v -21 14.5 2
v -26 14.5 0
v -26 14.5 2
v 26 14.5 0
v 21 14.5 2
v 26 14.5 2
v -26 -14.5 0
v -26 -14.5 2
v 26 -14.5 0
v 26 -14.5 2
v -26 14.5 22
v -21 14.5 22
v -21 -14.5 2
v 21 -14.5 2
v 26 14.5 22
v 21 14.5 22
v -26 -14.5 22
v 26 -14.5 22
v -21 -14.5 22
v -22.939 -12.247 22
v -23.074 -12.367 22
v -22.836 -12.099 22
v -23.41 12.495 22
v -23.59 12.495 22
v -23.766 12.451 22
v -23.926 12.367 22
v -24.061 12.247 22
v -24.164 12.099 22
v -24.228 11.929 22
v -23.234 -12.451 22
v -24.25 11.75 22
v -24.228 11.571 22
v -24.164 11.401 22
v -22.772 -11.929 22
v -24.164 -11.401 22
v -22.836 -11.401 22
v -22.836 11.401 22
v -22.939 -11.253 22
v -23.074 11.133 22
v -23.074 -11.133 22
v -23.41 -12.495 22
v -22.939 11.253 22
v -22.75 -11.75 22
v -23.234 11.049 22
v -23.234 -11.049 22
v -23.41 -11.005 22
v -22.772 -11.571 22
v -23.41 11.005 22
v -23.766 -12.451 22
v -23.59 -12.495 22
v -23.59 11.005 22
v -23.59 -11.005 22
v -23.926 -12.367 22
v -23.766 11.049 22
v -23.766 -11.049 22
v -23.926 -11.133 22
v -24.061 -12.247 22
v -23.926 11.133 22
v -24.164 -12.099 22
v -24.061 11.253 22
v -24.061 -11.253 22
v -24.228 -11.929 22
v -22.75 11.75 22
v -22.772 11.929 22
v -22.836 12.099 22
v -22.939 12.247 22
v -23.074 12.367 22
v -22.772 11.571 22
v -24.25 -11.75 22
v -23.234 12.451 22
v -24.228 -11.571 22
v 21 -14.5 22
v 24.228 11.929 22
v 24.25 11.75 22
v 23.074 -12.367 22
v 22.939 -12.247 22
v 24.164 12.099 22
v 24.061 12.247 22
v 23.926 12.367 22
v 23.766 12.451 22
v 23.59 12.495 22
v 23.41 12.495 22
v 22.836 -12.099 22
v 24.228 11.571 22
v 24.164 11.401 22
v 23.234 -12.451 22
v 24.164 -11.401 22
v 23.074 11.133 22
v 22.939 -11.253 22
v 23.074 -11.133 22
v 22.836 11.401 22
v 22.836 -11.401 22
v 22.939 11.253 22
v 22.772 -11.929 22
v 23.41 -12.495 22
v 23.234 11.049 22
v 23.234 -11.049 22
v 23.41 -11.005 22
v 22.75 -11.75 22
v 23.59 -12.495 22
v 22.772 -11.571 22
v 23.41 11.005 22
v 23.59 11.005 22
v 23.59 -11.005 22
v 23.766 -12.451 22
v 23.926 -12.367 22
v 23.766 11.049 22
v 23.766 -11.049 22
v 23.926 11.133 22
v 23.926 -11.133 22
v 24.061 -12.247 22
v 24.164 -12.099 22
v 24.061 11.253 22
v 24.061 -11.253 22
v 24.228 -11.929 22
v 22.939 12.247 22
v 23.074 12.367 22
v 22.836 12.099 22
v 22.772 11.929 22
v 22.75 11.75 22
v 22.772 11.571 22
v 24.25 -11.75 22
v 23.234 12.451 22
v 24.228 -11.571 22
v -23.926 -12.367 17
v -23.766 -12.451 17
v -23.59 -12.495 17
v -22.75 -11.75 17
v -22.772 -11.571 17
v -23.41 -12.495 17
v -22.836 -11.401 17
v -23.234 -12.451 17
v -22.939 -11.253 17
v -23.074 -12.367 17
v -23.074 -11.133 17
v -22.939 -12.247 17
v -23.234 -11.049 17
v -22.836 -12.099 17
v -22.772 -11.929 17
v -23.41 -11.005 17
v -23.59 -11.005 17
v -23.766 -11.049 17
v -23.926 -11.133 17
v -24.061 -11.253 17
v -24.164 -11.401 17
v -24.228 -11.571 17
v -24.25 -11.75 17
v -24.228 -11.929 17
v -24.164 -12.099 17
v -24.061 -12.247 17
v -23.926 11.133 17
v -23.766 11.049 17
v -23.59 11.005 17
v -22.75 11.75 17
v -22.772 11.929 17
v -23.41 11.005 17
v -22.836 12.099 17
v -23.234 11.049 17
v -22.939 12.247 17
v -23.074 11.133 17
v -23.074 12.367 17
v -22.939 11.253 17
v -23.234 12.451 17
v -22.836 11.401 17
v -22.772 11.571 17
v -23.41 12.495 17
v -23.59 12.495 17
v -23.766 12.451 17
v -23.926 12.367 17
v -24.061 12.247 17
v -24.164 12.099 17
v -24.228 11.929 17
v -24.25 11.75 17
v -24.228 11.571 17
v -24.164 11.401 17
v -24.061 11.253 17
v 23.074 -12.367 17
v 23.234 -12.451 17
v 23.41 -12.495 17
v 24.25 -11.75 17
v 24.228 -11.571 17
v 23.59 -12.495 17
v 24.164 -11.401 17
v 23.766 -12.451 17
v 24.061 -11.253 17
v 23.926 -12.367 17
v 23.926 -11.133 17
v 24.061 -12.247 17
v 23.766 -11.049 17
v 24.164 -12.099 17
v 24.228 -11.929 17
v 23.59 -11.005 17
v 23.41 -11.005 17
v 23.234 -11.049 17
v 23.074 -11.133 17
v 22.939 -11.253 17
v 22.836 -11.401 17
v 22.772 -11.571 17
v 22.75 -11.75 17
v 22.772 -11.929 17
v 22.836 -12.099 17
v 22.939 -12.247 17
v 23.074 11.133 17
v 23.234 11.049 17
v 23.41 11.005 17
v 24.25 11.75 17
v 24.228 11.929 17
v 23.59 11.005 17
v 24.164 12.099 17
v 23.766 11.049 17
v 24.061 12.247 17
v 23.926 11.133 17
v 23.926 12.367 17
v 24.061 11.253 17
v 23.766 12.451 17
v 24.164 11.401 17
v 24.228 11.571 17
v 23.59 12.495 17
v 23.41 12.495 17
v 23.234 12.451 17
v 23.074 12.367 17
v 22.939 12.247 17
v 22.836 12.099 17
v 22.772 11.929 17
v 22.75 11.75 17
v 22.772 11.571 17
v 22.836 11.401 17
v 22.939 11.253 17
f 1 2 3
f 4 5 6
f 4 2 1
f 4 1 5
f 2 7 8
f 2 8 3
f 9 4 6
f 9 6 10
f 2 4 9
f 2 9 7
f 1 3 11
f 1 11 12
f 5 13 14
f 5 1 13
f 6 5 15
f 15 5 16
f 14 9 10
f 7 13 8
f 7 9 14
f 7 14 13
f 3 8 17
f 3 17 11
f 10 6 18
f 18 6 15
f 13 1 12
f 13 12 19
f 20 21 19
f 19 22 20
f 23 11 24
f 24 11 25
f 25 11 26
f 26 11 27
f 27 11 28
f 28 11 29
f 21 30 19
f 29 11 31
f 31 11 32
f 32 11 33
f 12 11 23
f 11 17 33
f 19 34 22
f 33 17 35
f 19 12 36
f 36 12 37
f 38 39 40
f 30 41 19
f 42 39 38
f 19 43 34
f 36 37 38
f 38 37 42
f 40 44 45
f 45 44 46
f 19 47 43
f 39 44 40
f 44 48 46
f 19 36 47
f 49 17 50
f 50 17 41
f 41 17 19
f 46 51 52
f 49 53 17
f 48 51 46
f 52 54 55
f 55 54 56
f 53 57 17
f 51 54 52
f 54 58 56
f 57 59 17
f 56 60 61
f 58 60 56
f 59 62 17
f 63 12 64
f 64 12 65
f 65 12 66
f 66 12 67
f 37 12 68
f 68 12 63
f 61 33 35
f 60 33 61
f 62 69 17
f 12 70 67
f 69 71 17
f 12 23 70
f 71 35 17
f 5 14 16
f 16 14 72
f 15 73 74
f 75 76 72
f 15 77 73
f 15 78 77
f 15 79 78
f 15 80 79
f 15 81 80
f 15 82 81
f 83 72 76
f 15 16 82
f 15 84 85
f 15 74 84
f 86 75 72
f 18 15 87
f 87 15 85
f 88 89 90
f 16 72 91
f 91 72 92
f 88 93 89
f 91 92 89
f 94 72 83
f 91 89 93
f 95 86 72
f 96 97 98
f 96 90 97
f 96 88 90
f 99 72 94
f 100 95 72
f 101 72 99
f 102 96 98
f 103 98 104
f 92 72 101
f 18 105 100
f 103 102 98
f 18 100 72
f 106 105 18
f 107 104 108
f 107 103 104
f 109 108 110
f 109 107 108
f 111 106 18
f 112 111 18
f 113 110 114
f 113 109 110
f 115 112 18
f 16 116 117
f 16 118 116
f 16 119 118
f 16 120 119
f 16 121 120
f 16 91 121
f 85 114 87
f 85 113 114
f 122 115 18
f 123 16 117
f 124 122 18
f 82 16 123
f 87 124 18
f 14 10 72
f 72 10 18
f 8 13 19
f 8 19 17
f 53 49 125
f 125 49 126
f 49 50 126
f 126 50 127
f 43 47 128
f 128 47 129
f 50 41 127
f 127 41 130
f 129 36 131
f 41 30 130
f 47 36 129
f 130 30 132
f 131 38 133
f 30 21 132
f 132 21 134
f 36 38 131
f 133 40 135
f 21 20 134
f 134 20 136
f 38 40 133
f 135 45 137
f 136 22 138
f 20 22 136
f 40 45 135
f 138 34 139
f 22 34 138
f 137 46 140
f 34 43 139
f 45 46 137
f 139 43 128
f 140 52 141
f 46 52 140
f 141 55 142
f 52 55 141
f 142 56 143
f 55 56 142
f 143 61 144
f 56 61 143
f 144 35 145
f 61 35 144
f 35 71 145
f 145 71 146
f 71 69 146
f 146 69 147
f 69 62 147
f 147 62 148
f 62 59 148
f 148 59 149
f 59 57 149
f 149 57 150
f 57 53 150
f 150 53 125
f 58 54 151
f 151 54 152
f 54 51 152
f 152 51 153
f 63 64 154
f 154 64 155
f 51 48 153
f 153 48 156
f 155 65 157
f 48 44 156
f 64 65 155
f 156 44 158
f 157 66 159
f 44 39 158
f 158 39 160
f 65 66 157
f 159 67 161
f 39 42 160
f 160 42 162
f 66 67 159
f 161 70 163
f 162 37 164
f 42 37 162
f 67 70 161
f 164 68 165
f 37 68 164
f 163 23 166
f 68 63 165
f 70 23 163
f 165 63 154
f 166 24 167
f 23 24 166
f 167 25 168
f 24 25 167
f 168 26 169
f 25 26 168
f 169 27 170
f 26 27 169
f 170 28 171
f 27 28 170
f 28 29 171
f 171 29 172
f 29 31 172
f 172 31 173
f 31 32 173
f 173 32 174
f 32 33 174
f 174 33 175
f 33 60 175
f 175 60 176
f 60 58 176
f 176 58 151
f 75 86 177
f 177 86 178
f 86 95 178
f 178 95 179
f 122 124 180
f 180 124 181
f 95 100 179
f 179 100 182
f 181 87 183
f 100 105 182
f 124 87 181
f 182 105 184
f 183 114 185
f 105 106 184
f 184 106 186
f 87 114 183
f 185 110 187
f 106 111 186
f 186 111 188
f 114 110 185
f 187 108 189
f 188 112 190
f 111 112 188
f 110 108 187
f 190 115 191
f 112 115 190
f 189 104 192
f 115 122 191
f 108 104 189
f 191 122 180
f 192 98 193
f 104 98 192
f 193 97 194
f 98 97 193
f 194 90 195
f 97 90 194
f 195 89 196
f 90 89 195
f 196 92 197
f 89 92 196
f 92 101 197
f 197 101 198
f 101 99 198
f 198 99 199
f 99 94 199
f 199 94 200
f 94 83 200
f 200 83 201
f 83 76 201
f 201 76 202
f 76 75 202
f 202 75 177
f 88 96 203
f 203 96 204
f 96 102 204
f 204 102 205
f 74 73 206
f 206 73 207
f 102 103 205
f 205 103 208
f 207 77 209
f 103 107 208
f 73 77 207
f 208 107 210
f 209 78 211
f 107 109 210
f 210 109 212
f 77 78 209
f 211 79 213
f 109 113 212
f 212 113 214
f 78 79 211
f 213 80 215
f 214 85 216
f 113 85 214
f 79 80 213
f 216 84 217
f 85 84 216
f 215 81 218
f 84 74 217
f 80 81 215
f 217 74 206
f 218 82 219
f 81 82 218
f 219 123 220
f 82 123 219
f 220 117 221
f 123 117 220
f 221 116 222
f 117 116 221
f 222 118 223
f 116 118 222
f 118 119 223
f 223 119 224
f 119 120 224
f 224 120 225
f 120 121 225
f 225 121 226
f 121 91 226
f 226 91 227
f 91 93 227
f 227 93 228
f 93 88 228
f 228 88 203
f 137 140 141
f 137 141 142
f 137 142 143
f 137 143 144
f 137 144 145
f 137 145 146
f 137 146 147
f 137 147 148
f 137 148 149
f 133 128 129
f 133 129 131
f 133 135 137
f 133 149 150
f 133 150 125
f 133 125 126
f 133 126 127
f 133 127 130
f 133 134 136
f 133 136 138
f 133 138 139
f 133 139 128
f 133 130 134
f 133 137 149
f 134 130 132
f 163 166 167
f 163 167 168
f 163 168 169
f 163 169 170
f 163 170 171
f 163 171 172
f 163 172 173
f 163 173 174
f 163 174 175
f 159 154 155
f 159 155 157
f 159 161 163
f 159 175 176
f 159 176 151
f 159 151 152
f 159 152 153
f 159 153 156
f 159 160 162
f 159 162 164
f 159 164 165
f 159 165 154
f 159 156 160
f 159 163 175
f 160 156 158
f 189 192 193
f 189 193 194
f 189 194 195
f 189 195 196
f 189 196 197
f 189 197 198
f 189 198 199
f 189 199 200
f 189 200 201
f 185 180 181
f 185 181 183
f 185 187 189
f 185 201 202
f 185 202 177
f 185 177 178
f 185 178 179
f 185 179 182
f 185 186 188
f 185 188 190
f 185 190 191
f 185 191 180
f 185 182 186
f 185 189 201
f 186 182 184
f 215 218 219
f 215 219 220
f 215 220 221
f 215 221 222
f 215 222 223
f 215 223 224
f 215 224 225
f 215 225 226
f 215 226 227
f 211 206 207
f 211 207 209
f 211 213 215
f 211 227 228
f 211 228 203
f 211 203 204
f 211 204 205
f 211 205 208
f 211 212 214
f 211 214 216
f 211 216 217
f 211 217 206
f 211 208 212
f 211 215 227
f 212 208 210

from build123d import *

# Parameters (mm, degrees)
SKETCH_W     = 52
SKETCH_H     = 29
PAD_DEPTH    = 2
SKETCH001_W  = 5
SKETCH001_H  = 29
PAD001_DEPTH = 20
SKETCH002_R  = 0.75
POCKET_DEPTH = 5


with BuildPart() as part:
    # Sketch → Pad (new body)
    with BuildSketch(Plane.XY):
        Rectangle(SKETCH_W, SKETCH_H)
    extrude(amount=PAD_DEPTH)

    # Sketch001 (on Face6 of Pad) → Pad001 (join)
    with BuildSketch(Plane.XY.offset(2)):
        with Locations((-23.5, 0)):
            Rectangle(SKETCH001_W, SKETCH001_H)
        with Locations((23.5, 0)):
            Rectangle(SKETCH001_W, SKETCH001_H)
    extrude(amount=PAD001_DEPTH)

    # Sketch002 (on Face12 of Pad001) → Pocket (cut)
    with BuildSketch(Plane.XY.offset(22)):
        with Locations((-23.5, 11.75)):
            Circle(SKETCH002_R)
        with Locations((-23.5, -11.75)):
            Circle(SKETCH002_R)
        with Locations((23.5, 11.75)):
            Circle(SKETCH002_R)
        with Locations((23.5, -11.75)):
            Circle(SKETCH002_R)
    extrude(amount=-POCKET_DEPTH, mode=Mode.SUBTRACT)


solid = part.part
